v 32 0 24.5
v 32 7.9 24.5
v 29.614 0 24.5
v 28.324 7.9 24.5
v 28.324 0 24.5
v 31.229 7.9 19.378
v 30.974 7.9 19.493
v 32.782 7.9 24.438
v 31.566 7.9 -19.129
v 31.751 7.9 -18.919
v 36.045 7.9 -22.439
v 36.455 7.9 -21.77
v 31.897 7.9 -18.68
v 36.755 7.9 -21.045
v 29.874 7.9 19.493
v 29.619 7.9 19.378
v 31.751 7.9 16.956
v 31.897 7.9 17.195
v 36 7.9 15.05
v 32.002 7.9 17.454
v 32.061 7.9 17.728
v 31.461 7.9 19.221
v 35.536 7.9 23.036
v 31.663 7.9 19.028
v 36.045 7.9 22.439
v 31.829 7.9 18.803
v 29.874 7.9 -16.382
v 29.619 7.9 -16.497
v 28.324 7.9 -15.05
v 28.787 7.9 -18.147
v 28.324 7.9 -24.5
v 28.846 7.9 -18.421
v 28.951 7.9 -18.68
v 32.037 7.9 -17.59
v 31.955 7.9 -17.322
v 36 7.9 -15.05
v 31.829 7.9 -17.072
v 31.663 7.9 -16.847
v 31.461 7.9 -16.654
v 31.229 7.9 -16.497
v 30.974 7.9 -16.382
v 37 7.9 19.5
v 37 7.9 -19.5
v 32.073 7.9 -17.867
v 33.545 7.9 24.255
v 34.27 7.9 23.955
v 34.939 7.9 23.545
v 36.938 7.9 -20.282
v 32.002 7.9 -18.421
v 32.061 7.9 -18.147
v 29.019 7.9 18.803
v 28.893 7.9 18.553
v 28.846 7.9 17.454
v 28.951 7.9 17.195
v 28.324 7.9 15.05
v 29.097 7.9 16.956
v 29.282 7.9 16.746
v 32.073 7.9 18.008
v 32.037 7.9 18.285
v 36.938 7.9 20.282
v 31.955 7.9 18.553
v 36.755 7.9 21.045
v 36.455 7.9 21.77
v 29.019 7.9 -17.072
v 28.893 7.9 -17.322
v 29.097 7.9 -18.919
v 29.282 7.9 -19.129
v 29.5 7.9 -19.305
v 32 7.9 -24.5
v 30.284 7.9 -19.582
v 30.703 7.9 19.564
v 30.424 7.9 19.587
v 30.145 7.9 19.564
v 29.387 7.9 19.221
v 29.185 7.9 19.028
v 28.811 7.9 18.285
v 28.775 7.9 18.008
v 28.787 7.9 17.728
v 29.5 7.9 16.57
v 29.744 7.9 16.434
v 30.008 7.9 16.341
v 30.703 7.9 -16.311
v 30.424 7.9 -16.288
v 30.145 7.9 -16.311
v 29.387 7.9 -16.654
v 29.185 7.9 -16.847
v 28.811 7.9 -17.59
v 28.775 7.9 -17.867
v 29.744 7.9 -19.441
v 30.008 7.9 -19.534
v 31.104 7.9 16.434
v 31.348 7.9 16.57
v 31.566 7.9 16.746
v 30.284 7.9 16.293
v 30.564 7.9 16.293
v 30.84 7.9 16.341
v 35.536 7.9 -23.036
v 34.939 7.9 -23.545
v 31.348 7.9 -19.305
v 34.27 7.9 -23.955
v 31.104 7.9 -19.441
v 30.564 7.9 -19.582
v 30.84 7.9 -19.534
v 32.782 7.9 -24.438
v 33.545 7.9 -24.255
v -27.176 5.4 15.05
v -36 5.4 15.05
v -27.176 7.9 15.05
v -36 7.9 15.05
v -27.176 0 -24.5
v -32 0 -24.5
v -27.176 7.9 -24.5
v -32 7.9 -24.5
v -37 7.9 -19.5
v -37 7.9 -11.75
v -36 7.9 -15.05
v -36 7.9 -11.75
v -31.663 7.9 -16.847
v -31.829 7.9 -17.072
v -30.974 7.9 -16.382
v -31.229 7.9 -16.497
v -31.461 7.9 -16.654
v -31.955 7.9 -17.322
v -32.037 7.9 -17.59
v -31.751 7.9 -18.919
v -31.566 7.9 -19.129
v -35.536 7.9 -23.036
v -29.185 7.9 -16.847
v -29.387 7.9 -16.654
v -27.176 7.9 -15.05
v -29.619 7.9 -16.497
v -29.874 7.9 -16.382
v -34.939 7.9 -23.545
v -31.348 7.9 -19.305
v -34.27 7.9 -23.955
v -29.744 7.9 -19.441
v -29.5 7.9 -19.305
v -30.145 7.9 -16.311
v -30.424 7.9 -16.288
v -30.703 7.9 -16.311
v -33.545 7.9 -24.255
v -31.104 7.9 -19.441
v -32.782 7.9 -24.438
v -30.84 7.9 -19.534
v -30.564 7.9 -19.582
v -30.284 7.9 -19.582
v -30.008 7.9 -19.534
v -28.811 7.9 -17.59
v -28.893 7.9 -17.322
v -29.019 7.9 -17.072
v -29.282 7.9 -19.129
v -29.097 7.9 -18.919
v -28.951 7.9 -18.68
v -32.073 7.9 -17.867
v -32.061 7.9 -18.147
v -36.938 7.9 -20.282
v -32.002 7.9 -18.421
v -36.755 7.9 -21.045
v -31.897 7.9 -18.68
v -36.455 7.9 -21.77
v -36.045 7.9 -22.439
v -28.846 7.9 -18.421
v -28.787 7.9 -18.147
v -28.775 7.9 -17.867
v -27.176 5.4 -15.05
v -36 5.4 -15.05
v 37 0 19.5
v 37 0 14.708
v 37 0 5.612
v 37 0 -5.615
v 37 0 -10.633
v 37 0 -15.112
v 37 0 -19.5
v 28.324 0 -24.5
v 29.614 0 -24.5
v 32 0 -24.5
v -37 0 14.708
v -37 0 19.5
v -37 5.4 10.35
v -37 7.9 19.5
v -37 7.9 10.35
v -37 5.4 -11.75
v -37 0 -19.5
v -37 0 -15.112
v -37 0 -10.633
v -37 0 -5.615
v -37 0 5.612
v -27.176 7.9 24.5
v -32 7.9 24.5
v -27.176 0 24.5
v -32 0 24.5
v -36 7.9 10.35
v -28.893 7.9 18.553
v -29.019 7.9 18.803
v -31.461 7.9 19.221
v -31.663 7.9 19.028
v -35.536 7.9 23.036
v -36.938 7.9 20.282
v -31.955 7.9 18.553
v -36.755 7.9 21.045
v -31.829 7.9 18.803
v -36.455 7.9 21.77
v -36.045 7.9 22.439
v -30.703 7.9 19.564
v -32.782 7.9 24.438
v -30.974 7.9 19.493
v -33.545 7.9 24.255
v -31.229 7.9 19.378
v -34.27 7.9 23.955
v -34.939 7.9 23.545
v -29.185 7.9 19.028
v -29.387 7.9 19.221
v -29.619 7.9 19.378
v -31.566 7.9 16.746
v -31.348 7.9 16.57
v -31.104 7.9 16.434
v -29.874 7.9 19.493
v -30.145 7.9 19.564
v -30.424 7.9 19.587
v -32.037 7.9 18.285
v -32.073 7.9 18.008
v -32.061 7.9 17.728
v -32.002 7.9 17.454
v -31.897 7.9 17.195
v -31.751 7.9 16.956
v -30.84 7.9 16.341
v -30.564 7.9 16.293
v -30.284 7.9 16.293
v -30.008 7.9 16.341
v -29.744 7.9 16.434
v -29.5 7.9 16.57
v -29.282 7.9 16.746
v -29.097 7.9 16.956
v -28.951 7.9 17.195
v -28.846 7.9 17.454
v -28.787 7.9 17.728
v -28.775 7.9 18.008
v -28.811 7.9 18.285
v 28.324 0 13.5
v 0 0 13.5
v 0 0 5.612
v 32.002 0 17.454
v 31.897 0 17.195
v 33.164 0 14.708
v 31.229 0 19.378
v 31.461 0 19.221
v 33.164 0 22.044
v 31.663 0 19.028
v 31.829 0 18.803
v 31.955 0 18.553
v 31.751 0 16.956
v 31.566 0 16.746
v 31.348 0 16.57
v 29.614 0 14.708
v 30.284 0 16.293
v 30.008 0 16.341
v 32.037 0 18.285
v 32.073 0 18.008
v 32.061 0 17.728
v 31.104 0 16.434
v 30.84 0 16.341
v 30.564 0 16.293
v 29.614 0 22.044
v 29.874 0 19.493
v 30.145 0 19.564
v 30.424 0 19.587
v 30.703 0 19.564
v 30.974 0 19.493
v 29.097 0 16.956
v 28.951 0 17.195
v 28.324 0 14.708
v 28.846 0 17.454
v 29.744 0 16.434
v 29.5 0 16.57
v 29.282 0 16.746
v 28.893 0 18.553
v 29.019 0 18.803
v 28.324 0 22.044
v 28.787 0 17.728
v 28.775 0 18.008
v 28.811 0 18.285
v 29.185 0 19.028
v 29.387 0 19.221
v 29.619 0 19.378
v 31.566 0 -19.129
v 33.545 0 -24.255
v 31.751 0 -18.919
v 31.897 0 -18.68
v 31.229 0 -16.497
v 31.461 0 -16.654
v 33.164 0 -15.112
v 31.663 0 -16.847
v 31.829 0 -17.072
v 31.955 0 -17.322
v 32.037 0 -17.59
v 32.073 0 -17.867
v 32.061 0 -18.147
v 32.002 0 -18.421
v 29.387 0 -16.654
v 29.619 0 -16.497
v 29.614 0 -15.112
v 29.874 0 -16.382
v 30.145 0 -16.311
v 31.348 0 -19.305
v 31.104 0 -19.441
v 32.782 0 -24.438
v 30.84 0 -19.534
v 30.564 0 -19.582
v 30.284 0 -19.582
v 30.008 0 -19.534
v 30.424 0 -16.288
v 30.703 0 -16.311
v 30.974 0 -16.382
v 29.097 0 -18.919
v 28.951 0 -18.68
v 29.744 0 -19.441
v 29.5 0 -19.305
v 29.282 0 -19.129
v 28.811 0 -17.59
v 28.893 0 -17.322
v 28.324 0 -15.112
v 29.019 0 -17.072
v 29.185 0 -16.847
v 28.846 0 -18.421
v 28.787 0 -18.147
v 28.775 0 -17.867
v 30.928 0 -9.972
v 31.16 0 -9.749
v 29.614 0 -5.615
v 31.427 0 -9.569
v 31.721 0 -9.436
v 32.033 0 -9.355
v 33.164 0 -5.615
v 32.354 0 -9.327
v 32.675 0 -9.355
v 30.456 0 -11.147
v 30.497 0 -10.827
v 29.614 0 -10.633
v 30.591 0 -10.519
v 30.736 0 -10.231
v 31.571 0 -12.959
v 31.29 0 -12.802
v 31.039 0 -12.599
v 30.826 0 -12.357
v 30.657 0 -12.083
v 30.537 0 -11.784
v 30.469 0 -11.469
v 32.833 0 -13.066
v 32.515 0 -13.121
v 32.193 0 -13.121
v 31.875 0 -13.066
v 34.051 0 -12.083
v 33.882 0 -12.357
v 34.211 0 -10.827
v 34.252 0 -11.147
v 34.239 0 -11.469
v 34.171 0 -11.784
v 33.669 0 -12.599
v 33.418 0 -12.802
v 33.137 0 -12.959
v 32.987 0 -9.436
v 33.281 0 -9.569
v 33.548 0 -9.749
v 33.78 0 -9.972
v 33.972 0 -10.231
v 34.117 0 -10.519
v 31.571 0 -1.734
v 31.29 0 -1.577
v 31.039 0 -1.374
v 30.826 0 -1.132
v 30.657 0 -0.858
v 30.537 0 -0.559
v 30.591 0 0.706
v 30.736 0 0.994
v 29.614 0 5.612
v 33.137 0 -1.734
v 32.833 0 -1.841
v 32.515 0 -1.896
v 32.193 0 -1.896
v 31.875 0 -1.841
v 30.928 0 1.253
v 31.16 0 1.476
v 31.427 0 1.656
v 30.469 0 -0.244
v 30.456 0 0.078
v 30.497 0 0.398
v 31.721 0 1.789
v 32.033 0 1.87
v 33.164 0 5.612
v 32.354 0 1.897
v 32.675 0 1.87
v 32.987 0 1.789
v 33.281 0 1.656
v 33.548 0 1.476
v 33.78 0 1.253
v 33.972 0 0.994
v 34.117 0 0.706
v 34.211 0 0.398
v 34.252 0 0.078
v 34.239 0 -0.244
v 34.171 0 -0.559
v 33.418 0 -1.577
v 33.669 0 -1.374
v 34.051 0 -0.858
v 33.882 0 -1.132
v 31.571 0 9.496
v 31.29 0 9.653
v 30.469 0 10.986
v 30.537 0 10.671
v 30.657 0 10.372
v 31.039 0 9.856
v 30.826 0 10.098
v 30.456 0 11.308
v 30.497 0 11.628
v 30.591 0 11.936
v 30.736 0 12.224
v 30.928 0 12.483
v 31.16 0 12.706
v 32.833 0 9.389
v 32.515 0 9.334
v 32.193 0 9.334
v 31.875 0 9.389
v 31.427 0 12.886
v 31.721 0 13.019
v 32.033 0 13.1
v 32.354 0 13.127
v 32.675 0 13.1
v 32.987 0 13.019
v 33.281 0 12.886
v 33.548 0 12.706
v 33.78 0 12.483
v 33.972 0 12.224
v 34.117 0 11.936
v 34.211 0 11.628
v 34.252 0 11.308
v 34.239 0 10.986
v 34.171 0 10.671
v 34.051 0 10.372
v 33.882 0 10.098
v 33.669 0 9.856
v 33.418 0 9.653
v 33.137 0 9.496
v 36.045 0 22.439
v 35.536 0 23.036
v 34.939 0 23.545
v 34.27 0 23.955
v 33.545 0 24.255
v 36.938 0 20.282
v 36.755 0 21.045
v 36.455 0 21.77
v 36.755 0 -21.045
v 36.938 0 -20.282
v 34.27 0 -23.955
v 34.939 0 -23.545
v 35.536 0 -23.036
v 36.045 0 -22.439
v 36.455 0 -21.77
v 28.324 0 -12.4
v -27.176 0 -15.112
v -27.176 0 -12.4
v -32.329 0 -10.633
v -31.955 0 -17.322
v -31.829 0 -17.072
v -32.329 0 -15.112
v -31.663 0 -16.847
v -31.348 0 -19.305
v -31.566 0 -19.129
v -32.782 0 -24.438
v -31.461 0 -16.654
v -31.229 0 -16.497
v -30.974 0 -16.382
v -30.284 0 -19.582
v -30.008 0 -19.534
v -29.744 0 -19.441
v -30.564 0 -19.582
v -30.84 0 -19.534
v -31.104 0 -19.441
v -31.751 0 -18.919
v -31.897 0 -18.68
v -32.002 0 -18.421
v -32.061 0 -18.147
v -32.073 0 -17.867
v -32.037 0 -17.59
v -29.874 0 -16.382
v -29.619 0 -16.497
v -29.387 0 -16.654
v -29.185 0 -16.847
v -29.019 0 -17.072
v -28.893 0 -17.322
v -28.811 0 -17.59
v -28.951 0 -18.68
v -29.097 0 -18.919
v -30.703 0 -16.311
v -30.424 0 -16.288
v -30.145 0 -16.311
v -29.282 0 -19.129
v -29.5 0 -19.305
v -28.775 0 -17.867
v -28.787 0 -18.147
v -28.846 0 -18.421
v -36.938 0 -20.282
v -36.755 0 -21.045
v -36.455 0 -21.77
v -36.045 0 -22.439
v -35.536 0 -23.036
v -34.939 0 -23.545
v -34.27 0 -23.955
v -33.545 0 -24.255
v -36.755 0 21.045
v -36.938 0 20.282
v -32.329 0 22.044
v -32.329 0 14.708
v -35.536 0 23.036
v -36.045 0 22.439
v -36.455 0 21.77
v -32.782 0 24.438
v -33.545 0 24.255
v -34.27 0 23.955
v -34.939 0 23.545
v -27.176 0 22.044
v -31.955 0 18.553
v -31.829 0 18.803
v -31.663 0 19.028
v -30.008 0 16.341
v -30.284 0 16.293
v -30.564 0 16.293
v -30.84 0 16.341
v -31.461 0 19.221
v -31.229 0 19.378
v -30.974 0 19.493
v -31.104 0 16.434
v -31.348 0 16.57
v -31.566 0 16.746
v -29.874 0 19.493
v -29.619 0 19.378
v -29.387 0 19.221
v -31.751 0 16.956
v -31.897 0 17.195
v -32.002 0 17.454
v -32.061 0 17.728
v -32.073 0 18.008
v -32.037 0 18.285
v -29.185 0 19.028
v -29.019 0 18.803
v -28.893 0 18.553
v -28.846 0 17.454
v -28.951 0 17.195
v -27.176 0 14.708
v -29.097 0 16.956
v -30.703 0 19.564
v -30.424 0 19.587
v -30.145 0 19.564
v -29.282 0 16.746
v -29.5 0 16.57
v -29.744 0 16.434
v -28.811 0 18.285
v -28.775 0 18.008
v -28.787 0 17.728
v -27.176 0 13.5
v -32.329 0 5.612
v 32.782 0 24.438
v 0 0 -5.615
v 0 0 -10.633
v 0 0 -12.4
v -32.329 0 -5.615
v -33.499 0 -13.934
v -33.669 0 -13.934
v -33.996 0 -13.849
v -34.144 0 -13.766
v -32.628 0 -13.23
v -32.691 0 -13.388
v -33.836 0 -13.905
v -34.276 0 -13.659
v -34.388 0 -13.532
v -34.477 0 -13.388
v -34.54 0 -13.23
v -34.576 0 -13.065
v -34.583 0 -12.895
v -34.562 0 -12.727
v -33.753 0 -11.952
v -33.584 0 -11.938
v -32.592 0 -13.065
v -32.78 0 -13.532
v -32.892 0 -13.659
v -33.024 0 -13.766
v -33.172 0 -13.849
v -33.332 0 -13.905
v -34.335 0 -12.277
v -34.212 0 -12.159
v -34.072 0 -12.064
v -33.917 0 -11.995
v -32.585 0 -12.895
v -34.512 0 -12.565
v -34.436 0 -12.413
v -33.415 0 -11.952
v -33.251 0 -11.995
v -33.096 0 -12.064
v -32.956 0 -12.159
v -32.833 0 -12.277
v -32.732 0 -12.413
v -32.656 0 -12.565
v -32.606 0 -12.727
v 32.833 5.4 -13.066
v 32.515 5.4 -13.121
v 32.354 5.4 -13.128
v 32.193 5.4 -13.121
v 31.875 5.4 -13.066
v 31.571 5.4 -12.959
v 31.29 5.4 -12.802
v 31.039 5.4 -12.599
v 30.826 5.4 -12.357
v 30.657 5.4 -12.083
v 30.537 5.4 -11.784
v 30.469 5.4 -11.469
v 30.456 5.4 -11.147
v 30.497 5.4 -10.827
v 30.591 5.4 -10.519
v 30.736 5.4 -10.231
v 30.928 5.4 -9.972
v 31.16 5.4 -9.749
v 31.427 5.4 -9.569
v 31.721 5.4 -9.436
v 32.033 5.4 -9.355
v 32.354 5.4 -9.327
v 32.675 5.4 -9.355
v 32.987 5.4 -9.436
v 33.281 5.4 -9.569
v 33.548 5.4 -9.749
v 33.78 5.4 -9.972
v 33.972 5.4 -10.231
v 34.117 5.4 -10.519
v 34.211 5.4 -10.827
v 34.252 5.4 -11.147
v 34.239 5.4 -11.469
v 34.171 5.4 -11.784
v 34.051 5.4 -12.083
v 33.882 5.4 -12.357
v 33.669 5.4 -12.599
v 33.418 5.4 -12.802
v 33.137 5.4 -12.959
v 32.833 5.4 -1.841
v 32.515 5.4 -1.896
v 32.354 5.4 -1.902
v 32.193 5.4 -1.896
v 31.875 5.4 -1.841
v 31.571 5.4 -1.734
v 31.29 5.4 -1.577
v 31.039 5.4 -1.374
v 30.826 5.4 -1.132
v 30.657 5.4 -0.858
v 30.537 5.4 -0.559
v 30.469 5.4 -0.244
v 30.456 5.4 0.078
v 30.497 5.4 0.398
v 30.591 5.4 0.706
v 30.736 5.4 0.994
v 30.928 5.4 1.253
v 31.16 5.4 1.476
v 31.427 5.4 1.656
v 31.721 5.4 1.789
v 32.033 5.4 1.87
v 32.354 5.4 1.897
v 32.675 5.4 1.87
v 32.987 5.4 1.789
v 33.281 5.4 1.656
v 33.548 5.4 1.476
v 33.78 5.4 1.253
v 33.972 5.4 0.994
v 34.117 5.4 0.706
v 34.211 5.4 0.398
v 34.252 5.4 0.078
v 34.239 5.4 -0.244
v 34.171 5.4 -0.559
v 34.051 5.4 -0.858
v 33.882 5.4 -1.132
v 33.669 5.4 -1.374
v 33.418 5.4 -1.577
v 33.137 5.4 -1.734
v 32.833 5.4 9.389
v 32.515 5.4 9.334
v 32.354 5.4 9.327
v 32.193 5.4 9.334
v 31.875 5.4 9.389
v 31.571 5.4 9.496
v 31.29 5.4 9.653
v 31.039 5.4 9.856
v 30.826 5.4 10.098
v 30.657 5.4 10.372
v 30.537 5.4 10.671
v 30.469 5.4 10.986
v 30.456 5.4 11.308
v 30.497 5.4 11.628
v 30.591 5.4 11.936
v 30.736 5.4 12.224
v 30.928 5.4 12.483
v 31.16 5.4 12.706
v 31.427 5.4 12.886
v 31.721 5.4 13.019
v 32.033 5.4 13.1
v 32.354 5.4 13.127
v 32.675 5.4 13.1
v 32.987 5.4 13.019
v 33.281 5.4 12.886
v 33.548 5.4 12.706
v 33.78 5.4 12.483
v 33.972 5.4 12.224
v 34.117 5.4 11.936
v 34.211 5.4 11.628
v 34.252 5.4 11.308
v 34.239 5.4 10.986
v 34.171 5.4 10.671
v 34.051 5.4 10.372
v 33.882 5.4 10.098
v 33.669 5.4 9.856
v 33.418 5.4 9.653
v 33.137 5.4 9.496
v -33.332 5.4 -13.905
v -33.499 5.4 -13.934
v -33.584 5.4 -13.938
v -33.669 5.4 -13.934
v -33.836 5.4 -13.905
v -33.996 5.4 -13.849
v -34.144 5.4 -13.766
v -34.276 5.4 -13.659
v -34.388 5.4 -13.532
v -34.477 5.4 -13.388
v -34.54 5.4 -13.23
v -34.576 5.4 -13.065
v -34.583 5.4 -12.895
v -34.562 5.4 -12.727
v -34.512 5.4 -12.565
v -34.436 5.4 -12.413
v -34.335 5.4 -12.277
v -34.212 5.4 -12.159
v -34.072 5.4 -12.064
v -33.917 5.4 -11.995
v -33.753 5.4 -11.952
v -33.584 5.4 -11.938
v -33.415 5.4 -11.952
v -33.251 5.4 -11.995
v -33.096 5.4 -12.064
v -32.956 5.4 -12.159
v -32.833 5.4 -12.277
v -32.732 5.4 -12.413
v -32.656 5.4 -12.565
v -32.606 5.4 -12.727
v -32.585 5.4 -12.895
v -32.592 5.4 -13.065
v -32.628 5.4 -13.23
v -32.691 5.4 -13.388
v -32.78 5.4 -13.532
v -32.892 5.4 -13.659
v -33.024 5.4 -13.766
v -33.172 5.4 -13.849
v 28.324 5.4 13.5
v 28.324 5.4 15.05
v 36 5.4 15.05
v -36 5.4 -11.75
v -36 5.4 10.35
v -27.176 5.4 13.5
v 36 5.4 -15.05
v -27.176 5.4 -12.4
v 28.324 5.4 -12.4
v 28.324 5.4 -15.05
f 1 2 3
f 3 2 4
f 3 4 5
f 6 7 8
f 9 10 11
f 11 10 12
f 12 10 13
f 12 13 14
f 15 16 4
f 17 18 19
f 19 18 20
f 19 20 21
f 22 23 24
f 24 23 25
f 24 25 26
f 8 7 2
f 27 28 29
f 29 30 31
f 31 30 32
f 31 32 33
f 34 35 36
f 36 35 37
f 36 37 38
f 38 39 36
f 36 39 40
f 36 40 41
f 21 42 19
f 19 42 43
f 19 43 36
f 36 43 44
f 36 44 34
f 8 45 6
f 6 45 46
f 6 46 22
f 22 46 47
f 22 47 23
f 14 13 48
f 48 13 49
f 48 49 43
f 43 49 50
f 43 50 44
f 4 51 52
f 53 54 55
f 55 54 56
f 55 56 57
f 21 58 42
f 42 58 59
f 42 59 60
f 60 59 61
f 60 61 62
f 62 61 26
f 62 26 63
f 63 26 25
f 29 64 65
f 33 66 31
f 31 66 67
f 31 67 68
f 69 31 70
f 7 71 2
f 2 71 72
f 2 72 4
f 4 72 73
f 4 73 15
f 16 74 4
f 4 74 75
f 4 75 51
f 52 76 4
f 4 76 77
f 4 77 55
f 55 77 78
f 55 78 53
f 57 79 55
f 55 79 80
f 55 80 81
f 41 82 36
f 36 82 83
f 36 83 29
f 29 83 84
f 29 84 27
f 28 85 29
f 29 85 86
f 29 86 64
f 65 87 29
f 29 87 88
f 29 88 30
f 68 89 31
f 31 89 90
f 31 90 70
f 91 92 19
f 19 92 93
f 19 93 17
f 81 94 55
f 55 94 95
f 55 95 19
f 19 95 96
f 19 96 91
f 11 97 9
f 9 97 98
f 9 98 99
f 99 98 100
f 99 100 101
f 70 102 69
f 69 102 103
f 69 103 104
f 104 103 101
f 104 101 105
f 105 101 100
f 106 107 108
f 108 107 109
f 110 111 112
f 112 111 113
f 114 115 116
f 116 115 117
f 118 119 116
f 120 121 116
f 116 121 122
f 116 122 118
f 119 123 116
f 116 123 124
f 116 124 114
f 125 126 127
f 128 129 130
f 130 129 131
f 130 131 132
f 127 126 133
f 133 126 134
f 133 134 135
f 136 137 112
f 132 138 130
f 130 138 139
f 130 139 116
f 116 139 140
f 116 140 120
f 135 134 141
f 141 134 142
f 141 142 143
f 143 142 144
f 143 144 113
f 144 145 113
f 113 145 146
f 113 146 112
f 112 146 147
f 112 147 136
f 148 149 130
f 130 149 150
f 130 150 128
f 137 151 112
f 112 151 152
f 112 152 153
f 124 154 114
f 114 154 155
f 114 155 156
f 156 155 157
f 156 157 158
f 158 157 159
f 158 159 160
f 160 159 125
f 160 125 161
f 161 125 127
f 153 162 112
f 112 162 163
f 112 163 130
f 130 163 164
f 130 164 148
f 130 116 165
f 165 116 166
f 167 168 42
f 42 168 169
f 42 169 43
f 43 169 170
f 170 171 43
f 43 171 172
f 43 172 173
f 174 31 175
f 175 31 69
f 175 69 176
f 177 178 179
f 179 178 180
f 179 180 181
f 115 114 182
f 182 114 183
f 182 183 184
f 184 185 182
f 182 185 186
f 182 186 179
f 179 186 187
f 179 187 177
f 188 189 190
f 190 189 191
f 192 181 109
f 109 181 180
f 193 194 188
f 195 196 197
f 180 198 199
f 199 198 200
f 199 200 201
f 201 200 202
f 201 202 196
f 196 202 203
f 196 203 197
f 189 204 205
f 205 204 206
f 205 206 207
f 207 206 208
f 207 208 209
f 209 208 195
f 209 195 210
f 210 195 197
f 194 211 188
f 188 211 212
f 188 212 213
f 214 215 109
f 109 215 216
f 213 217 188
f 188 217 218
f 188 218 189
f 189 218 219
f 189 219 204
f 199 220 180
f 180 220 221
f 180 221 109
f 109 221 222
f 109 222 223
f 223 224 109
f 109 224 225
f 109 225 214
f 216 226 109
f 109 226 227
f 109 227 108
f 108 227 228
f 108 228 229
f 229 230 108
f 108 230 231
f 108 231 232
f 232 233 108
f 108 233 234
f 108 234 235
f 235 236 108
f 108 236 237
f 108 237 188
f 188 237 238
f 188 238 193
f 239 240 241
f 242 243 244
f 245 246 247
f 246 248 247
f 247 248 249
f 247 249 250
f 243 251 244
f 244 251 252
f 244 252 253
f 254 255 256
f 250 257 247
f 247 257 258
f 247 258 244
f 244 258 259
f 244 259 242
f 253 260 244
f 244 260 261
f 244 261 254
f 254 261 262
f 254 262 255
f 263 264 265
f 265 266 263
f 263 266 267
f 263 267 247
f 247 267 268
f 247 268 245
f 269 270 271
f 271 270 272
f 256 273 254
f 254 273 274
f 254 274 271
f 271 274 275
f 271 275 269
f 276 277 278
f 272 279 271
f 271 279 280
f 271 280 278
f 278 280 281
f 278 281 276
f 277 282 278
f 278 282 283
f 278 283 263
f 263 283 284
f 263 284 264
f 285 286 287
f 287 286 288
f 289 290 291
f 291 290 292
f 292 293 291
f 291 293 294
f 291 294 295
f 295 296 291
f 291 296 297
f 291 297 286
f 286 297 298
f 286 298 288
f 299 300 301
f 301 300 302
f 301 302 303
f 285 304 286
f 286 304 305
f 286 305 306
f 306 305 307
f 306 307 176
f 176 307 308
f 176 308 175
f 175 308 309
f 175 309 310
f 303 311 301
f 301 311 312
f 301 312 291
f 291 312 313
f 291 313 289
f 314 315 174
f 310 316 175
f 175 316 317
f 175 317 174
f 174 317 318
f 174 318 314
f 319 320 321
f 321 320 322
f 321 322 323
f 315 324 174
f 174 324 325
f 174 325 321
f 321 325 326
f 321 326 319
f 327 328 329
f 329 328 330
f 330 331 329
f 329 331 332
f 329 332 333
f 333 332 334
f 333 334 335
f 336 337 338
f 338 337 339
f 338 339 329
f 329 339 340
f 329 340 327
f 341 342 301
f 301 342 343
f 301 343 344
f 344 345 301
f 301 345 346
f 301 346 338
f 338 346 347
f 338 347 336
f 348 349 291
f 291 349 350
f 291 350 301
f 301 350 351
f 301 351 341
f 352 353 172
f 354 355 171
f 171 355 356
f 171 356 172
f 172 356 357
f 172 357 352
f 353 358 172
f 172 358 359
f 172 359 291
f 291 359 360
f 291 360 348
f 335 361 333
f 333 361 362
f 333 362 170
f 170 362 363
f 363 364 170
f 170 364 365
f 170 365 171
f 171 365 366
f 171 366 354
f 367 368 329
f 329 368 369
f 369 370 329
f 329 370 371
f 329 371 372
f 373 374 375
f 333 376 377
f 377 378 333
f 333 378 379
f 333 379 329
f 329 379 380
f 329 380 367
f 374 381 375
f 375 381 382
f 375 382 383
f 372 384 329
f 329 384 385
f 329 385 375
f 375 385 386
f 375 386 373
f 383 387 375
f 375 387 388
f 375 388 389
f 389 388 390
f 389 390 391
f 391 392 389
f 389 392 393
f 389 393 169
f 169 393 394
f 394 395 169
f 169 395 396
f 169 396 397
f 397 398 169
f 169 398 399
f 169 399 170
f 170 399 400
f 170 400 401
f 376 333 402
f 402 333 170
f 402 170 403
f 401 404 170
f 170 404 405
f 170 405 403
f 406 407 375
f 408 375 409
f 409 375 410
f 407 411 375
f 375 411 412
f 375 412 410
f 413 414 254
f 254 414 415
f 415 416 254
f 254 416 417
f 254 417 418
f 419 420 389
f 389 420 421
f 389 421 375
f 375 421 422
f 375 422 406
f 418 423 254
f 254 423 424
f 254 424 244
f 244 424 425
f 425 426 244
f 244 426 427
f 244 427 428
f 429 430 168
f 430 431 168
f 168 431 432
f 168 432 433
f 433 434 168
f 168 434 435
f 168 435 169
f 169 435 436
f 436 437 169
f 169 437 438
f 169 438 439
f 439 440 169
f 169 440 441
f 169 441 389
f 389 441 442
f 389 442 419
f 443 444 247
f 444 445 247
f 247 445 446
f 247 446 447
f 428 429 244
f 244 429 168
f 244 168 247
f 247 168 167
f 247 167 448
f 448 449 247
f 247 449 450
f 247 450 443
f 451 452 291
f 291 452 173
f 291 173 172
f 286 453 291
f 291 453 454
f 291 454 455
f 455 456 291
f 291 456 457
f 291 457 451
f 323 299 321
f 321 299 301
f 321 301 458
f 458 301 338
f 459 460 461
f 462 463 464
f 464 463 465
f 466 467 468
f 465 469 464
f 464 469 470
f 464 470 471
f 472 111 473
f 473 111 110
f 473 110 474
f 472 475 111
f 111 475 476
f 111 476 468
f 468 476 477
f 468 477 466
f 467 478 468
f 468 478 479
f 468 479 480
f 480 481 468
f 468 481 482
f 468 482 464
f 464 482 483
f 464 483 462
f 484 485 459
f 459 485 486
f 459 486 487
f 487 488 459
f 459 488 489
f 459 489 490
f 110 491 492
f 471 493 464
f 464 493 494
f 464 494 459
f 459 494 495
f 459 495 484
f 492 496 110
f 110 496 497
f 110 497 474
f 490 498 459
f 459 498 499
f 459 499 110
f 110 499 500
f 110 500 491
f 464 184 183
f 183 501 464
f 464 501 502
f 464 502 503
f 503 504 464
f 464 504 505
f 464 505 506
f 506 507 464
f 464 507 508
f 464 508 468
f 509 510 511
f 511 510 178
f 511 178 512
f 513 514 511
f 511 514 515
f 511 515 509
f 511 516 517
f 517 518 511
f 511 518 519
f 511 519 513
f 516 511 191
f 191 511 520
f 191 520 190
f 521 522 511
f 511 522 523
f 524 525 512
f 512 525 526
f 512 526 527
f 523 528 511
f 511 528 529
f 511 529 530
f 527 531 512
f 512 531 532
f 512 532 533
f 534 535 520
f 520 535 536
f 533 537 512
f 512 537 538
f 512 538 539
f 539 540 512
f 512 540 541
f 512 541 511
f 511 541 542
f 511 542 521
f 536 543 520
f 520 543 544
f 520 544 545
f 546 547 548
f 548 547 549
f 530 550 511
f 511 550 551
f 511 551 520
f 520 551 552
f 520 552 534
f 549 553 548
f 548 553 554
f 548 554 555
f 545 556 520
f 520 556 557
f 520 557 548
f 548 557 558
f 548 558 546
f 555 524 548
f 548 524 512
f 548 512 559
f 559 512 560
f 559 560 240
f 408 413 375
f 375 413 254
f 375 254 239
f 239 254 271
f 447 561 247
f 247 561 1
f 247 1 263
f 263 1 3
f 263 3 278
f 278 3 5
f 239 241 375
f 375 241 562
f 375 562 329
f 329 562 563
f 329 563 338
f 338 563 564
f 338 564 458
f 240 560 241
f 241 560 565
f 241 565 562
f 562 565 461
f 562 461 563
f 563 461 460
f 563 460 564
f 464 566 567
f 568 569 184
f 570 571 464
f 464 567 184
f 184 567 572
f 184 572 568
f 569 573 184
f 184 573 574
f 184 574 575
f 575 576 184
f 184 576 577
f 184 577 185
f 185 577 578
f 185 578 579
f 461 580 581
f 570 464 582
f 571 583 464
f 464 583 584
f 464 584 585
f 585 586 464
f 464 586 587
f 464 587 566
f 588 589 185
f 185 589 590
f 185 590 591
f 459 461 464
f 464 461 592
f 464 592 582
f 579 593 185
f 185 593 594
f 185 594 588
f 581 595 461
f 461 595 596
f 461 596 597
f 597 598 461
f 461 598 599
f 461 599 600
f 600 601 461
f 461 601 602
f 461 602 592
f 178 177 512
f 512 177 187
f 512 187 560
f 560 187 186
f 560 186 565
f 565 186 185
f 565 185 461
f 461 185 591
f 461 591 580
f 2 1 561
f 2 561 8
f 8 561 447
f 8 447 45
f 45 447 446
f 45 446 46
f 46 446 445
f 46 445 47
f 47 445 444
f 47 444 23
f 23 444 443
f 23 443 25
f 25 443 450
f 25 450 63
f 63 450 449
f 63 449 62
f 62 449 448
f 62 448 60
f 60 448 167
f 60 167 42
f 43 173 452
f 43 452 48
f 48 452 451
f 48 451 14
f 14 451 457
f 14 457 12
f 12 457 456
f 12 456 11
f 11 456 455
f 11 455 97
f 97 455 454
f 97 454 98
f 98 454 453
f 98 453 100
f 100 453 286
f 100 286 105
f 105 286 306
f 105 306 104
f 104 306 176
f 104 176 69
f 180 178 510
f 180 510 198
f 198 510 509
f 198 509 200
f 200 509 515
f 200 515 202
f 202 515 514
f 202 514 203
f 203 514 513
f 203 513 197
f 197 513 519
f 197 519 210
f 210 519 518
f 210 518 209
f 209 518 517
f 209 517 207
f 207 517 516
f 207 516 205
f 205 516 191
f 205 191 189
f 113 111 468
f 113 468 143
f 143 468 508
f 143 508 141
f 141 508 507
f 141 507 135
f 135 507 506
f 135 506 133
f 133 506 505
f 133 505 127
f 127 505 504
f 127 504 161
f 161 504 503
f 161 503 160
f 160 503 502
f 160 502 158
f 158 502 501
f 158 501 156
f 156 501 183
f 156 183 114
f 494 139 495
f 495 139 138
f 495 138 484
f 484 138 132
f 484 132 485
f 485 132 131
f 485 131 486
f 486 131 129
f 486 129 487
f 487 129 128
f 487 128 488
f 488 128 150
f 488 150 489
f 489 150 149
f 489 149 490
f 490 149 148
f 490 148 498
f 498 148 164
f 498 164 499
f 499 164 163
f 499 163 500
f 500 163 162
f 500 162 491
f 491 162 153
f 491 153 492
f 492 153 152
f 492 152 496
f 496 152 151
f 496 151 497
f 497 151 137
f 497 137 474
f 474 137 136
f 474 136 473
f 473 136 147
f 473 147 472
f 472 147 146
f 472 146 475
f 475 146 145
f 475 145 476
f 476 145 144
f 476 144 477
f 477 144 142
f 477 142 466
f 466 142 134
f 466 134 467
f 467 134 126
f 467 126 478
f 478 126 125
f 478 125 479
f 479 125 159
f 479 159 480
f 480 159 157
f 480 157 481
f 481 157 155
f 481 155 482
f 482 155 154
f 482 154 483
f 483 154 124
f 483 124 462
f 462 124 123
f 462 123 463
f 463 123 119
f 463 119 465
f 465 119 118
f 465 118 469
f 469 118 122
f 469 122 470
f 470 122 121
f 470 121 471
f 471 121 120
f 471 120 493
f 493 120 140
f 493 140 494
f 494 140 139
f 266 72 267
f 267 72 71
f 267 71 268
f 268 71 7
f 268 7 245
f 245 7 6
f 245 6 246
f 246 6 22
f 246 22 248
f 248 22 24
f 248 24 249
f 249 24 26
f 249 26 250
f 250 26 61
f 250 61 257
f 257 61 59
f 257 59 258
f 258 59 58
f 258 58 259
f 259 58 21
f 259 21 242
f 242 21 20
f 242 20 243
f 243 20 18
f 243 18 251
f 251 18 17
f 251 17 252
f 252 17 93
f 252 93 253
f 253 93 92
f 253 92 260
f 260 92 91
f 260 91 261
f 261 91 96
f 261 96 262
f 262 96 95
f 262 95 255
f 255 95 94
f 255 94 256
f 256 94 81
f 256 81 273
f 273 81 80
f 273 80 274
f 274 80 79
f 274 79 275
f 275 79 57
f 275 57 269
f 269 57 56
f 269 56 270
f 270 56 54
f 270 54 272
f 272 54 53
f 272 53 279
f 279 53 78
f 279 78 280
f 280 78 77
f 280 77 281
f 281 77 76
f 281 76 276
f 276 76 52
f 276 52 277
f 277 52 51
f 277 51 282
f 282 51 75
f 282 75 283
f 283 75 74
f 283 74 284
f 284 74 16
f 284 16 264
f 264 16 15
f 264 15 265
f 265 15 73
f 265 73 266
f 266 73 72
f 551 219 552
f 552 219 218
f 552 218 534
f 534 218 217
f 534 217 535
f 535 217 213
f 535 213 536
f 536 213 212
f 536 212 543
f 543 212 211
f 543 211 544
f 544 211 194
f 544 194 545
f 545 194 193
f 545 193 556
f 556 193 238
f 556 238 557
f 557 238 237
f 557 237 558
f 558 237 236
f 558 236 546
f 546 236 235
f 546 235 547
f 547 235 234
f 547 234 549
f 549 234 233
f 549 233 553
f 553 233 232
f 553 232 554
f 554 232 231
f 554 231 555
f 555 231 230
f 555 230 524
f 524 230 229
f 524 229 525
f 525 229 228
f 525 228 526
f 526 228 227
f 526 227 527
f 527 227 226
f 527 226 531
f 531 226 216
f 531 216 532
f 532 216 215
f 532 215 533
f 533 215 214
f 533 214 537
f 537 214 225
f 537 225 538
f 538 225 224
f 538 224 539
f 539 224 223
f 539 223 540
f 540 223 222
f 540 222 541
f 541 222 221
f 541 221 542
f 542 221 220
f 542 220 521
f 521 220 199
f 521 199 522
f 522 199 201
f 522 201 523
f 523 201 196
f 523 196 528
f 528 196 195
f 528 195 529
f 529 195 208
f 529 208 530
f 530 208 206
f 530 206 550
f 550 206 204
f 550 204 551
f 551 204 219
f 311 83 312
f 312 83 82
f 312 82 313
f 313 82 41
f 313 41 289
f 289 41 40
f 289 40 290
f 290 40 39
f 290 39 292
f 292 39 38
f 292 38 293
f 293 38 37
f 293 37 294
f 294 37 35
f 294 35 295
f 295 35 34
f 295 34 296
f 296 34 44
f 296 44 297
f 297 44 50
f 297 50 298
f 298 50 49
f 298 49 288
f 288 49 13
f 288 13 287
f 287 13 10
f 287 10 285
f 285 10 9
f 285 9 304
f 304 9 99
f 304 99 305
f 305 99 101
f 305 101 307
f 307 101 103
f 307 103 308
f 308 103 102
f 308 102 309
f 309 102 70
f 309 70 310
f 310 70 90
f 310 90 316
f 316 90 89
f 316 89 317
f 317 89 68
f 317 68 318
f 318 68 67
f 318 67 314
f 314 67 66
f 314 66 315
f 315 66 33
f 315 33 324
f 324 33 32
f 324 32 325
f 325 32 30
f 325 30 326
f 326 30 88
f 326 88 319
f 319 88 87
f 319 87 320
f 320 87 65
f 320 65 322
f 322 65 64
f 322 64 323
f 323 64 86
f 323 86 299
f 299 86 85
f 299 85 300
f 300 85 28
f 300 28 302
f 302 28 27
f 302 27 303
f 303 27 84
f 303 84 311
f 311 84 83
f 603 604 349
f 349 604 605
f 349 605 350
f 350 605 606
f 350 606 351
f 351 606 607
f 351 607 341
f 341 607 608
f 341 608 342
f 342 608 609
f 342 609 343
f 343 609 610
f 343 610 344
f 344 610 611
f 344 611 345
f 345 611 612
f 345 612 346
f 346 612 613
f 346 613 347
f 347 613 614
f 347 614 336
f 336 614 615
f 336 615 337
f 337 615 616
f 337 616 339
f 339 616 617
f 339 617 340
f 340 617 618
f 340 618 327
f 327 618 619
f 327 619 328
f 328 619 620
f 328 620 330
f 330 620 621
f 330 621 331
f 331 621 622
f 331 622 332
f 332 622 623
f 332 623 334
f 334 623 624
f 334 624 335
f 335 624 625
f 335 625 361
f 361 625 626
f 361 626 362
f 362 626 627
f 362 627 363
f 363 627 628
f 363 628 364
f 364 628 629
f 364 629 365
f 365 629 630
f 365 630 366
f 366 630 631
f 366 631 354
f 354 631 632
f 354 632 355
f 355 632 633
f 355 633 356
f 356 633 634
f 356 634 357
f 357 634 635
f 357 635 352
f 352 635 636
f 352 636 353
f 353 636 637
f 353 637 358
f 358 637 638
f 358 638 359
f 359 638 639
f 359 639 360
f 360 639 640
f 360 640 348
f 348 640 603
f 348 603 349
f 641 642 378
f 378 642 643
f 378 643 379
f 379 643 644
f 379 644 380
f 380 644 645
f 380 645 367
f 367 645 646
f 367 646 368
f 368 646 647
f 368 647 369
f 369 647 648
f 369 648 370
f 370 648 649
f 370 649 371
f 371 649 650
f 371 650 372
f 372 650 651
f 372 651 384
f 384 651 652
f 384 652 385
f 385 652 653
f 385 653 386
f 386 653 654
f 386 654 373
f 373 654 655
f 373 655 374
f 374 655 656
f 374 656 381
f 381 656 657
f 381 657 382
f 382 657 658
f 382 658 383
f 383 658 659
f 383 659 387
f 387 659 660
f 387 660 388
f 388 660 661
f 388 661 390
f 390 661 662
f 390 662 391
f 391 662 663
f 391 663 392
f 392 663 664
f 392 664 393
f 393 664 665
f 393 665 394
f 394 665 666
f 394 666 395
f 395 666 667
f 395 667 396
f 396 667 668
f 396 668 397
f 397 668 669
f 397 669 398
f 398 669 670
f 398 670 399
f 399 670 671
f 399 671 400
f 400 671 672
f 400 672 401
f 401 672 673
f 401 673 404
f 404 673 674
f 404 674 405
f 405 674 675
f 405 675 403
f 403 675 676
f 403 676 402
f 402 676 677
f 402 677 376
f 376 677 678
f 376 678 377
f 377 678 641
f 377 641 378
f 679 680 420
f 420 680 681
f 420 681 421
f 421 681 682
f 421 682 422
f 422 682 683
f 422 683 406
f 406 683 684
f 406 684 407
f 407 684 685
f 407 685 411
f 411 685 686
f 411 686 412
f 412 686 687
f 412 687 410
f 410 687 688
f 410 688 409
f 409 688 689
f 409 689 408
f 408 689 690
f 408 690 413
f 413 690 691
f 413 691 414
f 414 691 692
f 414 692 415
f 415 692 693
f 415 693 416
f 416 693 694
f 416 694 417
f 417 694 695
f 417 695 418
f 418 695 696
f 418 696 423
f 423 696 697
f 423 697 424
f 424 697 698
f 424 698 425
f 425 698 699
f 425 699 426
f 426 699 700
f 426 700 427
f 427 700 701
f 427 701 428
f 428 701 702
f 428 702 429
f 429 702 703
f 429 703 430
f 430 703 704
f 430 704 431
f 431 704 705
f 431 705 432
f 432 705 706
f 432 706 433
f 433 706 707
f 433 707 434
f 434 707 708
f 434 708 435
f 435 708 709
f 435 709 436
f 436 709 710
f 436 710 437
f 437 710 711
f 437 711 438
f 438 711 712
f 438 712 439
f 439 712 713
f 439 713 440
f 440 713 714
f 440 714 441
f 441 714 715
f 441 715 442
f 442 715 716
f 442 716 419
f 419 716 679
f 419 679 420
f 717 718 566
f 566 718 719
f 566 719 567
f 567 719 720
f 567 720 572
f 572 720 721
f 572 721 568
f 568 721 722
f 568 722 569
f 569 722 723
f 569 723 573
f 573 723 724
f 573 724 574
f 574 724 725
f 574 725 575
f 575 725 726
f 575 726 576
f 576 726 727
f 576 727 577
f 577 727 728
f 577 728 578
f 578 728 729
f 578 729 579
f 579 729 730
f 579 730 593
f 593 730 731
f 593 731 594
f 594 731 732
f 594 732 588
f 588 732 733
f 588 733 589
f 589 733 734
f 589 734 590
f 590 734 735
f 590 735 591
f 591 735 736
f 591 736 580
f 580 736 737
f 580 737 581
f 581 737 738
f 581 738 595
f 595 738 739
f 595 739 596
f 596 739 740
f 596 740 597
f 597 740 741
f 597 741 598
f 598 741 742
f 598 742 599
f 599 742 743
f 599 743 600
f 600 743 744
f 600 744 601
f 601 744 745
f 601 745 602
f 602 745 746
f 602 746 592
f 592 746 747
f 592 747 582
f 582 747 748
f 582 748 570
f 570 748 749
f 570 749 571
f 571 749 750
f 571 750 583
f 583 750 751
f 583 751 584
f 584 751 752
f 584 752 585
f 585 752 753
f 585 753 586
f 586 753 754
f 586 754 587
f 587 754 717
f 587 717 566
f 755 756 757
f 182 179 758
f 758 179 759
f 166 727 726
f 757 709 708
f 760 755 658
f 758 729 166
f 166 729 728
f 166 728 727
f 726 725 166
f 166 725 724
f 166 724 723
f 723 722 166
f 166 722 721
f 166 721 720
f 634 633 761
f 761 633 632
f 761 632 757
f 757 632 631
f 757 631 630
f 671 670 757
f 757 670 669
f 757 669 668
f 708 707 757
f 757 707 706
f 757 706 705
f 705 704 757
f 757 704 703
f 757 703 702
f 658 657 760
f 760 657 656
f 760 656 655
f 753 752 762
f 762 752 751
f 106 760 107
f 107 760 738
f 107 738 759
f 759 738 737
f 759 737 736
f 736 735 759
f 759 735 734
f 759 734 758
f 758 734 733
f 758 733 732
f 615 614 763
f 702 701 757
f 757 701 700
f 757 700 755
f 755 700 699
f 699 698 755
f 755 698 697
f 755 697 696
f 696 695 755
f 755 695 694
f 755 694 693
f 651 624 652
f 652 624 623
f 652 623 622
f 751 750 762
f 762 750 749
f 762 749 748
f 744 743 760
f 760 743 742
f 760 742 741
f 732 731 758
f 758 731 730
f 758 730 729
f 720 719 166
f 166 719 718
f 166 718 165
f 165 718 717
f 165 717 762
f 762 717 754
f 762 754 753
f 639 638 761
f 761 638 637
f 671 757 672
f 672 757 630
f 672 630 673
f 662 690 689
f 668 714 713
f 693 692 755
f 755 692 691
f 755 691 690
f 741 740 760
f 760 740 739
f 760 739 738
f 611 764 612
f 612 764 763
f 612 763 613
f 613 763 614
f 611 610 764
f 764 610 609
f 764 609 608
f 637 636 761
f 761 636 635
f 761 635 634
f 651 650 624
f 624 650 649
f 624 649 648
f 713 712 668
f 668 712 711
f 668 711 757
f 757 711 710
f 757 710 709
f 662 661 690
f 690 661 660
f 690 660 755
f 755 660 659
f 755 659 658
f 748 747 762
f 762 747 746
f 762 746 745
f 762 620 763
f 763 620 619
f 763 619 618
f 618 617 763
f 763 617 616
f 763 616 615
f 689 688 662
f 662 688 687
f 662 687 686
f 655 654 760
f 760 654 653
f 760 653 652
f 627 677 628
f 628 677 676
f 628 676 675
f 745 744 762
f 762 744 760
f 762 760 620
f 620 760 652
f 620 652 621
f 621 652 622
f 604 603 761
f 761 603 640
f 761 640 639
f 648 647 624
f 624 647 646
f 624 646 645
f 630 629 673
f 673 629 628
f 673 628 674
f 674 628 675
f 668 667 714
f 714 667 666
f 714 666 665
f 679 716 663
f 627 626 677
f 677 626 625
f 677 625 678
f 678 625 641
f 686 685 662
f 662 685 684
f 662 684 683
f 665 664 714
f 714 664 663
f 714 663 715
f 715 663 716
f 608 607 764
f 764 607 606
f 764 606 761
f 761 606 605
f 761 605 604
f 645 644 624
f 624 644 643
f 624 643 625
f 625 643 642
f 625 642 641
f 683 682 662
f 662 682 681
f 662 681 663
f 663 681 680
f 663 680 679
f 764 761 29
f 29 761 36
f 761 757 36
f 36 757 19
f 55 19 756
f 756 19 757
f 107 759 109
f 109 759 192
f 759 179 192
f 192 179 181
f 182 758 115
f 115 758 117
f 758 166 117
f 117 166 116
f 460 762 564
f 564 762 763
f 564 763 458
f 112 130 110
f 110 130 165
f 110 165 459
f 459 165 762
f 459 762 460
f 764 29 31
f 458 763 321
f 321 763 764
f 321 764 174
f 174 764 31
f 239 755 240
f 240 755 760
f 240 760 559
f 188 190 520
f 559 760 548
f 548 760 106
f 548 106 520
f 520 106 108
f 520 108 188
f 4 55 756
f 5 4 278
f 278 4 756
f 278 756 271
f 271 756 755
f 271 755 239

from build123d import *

# Parameters (mm, degrees)
SKETCH1_W           = 74
SKETCH1_H           = 49
BOSS_EXTRUDE1_DEPTH = 7.9
FILLET1_R           = 5
SKETCH3_R           = 1.65
CUT_EXTRUDE6_DEPTH  = 7.9
SKETCH9_R           = 1.9
SKETCH9_R_2         = 1
CUT_EXTRUDE7_DEPTH  = 7.9
CUT_EXTRUDE8_DEPTH  = 2.5
SKETCH11_W          = 55.5
SKETCH11_H          = 12.1
CUT_EXTRUDE9_DEPTH  = 7.9
CUT_EXTRUDE10_DEPTH = 7.9
SKETCH15_W          = 55.5
SKETCH15_H          = 3
CUT_EXTRUDE11_DEPTH = 10


with BuildPart() as part:
    # Sketch1 → Boss-Extrude1 (new body)
    with BuildSketch(Plane(origin=(0, 0, 0), x_dir=(1, 0, 0), z_dir=(0, 1, 0))):
        Rectangle(SKETCH1_W, SKETCH1_H)
    extrude(amount=BOSS_EXTRUDE1_DEPTH)

    # Fillet1
    fillet1_edges = [part.edges().sort_by_distance(p)[0] for p in [
        (37, 3.95, 24.5),
        (-37, 3.95, 24.5),
        (-37, 3.95, -24.5),
        (37, 3.95, -24.5),
    ]]
    fillet(fillet1_edges, radius=FILLET1_R)

    # Sketch3 → Cut-Extrude6 (cut)
    with BuildSketch(Plane(origin=(0, 7.9, 0), x_dir=(1, 0, 0), z_dir=(0, 1, 0))):
        with Locations((-30.424, 17.9375)):
            Circle(SKETCH3_R)
        with Locations((30.424, 17.9375)):
            Circle(SKETCH3_R)
        with Locations((-30.424, -17.9375)):
            Circle(SKETCH3_R)
        with Locations((30.424, -17.9375)):
            Circle(SKETCH3_R)
    extrude(amount=-CUT_EXTRUDE6_DEPTH, mode=Mode.SUBTRACT)

    # Sketch9 → Cut-Extrude7 (cut)
    with BuildSketch(Plane(origin=(0, 7.9, 0), x_dir=(1, 0, 0), z_dir=(0, 1, 0))):
        with Locations((32.354, 11.2275)):
            Circle(SKETCH9_R)
        with Locations((32.354, 0.0025)):
            Circle(SKETCH9_R)
        with Locations((32.354, -11.2275)):
            Circle(SKETCH9_R)
        with Locations((-33.584, 12.9375)):
            Circle(SKETCH9_R_2)
    extrude(amount=-CUT_EXTRUDE7_DEPTH, mode=Mode.SUBTRACT)

    # Sketch10 → Cut-Extrude8 (cut)
    with BuildSketch(Plane(origin=(0, 7.9, 0), x_dir=(1, 0, 0), z_dir=(0, 1, 0))):
        Polygon((36, 15.05), (36, -15.05), (-36, -15.05), (-36, -10.35), (-37, -10.35), (-37, 11.75), (-36, 11.75), (-36, 15.05), align=None)
    extrude(amount=-CUT_EXTRUDE8_DEPTH, mode=Mode.SUBTRACT)

    # Sketch11 → Cut-Extrude9 (cut)
    with BuildSketch(Plane(origin=(0, 7.9, 0), x_dir=(1, 0, 0), z_dir=(0, 1, 0))):
        with Locations((0.574, 18.45)):
            Rectangle(SKETCH11_W, SKETCH11_H)
    extrude(amount=-CUT_EXTRUDE9_DEPTH, mode=Mode.SUBTRACT)

    # Sketch12 → Cut-Extrude10 (cut)
    with BuildSketch(Plane(origin=(0, 7.9, 0), x_dir=(1, 0, 0), z_dir=(0, 1, 0))):
        Polygon((-27.176, -15.05), (-27.176, -13.5), (28.324, -13.5), (28.324, -15.05), (28.324, -21.5), (-27.176, -21.5), align=None)
    extrude(amount=-CUT_EXTRUDE10_DEPTH, mode=Mode.SUBTRACT)

    # Sketch15 → Cut-Extrude11 (cut)
    with BuildSketch(Plane(origin=(0, 7.9, 0), x_dir=(1, 0, 0), z_dir=(0, 1, 0))):
        with Locations((0.574, -23)):
            Rectangle(SKETCH15_W, SKETCH15_H)
    extrude(amount=-CUT_EXTRUDE11_DEPTH, mode=Mode.SUBTRACT)


solid = part.part
